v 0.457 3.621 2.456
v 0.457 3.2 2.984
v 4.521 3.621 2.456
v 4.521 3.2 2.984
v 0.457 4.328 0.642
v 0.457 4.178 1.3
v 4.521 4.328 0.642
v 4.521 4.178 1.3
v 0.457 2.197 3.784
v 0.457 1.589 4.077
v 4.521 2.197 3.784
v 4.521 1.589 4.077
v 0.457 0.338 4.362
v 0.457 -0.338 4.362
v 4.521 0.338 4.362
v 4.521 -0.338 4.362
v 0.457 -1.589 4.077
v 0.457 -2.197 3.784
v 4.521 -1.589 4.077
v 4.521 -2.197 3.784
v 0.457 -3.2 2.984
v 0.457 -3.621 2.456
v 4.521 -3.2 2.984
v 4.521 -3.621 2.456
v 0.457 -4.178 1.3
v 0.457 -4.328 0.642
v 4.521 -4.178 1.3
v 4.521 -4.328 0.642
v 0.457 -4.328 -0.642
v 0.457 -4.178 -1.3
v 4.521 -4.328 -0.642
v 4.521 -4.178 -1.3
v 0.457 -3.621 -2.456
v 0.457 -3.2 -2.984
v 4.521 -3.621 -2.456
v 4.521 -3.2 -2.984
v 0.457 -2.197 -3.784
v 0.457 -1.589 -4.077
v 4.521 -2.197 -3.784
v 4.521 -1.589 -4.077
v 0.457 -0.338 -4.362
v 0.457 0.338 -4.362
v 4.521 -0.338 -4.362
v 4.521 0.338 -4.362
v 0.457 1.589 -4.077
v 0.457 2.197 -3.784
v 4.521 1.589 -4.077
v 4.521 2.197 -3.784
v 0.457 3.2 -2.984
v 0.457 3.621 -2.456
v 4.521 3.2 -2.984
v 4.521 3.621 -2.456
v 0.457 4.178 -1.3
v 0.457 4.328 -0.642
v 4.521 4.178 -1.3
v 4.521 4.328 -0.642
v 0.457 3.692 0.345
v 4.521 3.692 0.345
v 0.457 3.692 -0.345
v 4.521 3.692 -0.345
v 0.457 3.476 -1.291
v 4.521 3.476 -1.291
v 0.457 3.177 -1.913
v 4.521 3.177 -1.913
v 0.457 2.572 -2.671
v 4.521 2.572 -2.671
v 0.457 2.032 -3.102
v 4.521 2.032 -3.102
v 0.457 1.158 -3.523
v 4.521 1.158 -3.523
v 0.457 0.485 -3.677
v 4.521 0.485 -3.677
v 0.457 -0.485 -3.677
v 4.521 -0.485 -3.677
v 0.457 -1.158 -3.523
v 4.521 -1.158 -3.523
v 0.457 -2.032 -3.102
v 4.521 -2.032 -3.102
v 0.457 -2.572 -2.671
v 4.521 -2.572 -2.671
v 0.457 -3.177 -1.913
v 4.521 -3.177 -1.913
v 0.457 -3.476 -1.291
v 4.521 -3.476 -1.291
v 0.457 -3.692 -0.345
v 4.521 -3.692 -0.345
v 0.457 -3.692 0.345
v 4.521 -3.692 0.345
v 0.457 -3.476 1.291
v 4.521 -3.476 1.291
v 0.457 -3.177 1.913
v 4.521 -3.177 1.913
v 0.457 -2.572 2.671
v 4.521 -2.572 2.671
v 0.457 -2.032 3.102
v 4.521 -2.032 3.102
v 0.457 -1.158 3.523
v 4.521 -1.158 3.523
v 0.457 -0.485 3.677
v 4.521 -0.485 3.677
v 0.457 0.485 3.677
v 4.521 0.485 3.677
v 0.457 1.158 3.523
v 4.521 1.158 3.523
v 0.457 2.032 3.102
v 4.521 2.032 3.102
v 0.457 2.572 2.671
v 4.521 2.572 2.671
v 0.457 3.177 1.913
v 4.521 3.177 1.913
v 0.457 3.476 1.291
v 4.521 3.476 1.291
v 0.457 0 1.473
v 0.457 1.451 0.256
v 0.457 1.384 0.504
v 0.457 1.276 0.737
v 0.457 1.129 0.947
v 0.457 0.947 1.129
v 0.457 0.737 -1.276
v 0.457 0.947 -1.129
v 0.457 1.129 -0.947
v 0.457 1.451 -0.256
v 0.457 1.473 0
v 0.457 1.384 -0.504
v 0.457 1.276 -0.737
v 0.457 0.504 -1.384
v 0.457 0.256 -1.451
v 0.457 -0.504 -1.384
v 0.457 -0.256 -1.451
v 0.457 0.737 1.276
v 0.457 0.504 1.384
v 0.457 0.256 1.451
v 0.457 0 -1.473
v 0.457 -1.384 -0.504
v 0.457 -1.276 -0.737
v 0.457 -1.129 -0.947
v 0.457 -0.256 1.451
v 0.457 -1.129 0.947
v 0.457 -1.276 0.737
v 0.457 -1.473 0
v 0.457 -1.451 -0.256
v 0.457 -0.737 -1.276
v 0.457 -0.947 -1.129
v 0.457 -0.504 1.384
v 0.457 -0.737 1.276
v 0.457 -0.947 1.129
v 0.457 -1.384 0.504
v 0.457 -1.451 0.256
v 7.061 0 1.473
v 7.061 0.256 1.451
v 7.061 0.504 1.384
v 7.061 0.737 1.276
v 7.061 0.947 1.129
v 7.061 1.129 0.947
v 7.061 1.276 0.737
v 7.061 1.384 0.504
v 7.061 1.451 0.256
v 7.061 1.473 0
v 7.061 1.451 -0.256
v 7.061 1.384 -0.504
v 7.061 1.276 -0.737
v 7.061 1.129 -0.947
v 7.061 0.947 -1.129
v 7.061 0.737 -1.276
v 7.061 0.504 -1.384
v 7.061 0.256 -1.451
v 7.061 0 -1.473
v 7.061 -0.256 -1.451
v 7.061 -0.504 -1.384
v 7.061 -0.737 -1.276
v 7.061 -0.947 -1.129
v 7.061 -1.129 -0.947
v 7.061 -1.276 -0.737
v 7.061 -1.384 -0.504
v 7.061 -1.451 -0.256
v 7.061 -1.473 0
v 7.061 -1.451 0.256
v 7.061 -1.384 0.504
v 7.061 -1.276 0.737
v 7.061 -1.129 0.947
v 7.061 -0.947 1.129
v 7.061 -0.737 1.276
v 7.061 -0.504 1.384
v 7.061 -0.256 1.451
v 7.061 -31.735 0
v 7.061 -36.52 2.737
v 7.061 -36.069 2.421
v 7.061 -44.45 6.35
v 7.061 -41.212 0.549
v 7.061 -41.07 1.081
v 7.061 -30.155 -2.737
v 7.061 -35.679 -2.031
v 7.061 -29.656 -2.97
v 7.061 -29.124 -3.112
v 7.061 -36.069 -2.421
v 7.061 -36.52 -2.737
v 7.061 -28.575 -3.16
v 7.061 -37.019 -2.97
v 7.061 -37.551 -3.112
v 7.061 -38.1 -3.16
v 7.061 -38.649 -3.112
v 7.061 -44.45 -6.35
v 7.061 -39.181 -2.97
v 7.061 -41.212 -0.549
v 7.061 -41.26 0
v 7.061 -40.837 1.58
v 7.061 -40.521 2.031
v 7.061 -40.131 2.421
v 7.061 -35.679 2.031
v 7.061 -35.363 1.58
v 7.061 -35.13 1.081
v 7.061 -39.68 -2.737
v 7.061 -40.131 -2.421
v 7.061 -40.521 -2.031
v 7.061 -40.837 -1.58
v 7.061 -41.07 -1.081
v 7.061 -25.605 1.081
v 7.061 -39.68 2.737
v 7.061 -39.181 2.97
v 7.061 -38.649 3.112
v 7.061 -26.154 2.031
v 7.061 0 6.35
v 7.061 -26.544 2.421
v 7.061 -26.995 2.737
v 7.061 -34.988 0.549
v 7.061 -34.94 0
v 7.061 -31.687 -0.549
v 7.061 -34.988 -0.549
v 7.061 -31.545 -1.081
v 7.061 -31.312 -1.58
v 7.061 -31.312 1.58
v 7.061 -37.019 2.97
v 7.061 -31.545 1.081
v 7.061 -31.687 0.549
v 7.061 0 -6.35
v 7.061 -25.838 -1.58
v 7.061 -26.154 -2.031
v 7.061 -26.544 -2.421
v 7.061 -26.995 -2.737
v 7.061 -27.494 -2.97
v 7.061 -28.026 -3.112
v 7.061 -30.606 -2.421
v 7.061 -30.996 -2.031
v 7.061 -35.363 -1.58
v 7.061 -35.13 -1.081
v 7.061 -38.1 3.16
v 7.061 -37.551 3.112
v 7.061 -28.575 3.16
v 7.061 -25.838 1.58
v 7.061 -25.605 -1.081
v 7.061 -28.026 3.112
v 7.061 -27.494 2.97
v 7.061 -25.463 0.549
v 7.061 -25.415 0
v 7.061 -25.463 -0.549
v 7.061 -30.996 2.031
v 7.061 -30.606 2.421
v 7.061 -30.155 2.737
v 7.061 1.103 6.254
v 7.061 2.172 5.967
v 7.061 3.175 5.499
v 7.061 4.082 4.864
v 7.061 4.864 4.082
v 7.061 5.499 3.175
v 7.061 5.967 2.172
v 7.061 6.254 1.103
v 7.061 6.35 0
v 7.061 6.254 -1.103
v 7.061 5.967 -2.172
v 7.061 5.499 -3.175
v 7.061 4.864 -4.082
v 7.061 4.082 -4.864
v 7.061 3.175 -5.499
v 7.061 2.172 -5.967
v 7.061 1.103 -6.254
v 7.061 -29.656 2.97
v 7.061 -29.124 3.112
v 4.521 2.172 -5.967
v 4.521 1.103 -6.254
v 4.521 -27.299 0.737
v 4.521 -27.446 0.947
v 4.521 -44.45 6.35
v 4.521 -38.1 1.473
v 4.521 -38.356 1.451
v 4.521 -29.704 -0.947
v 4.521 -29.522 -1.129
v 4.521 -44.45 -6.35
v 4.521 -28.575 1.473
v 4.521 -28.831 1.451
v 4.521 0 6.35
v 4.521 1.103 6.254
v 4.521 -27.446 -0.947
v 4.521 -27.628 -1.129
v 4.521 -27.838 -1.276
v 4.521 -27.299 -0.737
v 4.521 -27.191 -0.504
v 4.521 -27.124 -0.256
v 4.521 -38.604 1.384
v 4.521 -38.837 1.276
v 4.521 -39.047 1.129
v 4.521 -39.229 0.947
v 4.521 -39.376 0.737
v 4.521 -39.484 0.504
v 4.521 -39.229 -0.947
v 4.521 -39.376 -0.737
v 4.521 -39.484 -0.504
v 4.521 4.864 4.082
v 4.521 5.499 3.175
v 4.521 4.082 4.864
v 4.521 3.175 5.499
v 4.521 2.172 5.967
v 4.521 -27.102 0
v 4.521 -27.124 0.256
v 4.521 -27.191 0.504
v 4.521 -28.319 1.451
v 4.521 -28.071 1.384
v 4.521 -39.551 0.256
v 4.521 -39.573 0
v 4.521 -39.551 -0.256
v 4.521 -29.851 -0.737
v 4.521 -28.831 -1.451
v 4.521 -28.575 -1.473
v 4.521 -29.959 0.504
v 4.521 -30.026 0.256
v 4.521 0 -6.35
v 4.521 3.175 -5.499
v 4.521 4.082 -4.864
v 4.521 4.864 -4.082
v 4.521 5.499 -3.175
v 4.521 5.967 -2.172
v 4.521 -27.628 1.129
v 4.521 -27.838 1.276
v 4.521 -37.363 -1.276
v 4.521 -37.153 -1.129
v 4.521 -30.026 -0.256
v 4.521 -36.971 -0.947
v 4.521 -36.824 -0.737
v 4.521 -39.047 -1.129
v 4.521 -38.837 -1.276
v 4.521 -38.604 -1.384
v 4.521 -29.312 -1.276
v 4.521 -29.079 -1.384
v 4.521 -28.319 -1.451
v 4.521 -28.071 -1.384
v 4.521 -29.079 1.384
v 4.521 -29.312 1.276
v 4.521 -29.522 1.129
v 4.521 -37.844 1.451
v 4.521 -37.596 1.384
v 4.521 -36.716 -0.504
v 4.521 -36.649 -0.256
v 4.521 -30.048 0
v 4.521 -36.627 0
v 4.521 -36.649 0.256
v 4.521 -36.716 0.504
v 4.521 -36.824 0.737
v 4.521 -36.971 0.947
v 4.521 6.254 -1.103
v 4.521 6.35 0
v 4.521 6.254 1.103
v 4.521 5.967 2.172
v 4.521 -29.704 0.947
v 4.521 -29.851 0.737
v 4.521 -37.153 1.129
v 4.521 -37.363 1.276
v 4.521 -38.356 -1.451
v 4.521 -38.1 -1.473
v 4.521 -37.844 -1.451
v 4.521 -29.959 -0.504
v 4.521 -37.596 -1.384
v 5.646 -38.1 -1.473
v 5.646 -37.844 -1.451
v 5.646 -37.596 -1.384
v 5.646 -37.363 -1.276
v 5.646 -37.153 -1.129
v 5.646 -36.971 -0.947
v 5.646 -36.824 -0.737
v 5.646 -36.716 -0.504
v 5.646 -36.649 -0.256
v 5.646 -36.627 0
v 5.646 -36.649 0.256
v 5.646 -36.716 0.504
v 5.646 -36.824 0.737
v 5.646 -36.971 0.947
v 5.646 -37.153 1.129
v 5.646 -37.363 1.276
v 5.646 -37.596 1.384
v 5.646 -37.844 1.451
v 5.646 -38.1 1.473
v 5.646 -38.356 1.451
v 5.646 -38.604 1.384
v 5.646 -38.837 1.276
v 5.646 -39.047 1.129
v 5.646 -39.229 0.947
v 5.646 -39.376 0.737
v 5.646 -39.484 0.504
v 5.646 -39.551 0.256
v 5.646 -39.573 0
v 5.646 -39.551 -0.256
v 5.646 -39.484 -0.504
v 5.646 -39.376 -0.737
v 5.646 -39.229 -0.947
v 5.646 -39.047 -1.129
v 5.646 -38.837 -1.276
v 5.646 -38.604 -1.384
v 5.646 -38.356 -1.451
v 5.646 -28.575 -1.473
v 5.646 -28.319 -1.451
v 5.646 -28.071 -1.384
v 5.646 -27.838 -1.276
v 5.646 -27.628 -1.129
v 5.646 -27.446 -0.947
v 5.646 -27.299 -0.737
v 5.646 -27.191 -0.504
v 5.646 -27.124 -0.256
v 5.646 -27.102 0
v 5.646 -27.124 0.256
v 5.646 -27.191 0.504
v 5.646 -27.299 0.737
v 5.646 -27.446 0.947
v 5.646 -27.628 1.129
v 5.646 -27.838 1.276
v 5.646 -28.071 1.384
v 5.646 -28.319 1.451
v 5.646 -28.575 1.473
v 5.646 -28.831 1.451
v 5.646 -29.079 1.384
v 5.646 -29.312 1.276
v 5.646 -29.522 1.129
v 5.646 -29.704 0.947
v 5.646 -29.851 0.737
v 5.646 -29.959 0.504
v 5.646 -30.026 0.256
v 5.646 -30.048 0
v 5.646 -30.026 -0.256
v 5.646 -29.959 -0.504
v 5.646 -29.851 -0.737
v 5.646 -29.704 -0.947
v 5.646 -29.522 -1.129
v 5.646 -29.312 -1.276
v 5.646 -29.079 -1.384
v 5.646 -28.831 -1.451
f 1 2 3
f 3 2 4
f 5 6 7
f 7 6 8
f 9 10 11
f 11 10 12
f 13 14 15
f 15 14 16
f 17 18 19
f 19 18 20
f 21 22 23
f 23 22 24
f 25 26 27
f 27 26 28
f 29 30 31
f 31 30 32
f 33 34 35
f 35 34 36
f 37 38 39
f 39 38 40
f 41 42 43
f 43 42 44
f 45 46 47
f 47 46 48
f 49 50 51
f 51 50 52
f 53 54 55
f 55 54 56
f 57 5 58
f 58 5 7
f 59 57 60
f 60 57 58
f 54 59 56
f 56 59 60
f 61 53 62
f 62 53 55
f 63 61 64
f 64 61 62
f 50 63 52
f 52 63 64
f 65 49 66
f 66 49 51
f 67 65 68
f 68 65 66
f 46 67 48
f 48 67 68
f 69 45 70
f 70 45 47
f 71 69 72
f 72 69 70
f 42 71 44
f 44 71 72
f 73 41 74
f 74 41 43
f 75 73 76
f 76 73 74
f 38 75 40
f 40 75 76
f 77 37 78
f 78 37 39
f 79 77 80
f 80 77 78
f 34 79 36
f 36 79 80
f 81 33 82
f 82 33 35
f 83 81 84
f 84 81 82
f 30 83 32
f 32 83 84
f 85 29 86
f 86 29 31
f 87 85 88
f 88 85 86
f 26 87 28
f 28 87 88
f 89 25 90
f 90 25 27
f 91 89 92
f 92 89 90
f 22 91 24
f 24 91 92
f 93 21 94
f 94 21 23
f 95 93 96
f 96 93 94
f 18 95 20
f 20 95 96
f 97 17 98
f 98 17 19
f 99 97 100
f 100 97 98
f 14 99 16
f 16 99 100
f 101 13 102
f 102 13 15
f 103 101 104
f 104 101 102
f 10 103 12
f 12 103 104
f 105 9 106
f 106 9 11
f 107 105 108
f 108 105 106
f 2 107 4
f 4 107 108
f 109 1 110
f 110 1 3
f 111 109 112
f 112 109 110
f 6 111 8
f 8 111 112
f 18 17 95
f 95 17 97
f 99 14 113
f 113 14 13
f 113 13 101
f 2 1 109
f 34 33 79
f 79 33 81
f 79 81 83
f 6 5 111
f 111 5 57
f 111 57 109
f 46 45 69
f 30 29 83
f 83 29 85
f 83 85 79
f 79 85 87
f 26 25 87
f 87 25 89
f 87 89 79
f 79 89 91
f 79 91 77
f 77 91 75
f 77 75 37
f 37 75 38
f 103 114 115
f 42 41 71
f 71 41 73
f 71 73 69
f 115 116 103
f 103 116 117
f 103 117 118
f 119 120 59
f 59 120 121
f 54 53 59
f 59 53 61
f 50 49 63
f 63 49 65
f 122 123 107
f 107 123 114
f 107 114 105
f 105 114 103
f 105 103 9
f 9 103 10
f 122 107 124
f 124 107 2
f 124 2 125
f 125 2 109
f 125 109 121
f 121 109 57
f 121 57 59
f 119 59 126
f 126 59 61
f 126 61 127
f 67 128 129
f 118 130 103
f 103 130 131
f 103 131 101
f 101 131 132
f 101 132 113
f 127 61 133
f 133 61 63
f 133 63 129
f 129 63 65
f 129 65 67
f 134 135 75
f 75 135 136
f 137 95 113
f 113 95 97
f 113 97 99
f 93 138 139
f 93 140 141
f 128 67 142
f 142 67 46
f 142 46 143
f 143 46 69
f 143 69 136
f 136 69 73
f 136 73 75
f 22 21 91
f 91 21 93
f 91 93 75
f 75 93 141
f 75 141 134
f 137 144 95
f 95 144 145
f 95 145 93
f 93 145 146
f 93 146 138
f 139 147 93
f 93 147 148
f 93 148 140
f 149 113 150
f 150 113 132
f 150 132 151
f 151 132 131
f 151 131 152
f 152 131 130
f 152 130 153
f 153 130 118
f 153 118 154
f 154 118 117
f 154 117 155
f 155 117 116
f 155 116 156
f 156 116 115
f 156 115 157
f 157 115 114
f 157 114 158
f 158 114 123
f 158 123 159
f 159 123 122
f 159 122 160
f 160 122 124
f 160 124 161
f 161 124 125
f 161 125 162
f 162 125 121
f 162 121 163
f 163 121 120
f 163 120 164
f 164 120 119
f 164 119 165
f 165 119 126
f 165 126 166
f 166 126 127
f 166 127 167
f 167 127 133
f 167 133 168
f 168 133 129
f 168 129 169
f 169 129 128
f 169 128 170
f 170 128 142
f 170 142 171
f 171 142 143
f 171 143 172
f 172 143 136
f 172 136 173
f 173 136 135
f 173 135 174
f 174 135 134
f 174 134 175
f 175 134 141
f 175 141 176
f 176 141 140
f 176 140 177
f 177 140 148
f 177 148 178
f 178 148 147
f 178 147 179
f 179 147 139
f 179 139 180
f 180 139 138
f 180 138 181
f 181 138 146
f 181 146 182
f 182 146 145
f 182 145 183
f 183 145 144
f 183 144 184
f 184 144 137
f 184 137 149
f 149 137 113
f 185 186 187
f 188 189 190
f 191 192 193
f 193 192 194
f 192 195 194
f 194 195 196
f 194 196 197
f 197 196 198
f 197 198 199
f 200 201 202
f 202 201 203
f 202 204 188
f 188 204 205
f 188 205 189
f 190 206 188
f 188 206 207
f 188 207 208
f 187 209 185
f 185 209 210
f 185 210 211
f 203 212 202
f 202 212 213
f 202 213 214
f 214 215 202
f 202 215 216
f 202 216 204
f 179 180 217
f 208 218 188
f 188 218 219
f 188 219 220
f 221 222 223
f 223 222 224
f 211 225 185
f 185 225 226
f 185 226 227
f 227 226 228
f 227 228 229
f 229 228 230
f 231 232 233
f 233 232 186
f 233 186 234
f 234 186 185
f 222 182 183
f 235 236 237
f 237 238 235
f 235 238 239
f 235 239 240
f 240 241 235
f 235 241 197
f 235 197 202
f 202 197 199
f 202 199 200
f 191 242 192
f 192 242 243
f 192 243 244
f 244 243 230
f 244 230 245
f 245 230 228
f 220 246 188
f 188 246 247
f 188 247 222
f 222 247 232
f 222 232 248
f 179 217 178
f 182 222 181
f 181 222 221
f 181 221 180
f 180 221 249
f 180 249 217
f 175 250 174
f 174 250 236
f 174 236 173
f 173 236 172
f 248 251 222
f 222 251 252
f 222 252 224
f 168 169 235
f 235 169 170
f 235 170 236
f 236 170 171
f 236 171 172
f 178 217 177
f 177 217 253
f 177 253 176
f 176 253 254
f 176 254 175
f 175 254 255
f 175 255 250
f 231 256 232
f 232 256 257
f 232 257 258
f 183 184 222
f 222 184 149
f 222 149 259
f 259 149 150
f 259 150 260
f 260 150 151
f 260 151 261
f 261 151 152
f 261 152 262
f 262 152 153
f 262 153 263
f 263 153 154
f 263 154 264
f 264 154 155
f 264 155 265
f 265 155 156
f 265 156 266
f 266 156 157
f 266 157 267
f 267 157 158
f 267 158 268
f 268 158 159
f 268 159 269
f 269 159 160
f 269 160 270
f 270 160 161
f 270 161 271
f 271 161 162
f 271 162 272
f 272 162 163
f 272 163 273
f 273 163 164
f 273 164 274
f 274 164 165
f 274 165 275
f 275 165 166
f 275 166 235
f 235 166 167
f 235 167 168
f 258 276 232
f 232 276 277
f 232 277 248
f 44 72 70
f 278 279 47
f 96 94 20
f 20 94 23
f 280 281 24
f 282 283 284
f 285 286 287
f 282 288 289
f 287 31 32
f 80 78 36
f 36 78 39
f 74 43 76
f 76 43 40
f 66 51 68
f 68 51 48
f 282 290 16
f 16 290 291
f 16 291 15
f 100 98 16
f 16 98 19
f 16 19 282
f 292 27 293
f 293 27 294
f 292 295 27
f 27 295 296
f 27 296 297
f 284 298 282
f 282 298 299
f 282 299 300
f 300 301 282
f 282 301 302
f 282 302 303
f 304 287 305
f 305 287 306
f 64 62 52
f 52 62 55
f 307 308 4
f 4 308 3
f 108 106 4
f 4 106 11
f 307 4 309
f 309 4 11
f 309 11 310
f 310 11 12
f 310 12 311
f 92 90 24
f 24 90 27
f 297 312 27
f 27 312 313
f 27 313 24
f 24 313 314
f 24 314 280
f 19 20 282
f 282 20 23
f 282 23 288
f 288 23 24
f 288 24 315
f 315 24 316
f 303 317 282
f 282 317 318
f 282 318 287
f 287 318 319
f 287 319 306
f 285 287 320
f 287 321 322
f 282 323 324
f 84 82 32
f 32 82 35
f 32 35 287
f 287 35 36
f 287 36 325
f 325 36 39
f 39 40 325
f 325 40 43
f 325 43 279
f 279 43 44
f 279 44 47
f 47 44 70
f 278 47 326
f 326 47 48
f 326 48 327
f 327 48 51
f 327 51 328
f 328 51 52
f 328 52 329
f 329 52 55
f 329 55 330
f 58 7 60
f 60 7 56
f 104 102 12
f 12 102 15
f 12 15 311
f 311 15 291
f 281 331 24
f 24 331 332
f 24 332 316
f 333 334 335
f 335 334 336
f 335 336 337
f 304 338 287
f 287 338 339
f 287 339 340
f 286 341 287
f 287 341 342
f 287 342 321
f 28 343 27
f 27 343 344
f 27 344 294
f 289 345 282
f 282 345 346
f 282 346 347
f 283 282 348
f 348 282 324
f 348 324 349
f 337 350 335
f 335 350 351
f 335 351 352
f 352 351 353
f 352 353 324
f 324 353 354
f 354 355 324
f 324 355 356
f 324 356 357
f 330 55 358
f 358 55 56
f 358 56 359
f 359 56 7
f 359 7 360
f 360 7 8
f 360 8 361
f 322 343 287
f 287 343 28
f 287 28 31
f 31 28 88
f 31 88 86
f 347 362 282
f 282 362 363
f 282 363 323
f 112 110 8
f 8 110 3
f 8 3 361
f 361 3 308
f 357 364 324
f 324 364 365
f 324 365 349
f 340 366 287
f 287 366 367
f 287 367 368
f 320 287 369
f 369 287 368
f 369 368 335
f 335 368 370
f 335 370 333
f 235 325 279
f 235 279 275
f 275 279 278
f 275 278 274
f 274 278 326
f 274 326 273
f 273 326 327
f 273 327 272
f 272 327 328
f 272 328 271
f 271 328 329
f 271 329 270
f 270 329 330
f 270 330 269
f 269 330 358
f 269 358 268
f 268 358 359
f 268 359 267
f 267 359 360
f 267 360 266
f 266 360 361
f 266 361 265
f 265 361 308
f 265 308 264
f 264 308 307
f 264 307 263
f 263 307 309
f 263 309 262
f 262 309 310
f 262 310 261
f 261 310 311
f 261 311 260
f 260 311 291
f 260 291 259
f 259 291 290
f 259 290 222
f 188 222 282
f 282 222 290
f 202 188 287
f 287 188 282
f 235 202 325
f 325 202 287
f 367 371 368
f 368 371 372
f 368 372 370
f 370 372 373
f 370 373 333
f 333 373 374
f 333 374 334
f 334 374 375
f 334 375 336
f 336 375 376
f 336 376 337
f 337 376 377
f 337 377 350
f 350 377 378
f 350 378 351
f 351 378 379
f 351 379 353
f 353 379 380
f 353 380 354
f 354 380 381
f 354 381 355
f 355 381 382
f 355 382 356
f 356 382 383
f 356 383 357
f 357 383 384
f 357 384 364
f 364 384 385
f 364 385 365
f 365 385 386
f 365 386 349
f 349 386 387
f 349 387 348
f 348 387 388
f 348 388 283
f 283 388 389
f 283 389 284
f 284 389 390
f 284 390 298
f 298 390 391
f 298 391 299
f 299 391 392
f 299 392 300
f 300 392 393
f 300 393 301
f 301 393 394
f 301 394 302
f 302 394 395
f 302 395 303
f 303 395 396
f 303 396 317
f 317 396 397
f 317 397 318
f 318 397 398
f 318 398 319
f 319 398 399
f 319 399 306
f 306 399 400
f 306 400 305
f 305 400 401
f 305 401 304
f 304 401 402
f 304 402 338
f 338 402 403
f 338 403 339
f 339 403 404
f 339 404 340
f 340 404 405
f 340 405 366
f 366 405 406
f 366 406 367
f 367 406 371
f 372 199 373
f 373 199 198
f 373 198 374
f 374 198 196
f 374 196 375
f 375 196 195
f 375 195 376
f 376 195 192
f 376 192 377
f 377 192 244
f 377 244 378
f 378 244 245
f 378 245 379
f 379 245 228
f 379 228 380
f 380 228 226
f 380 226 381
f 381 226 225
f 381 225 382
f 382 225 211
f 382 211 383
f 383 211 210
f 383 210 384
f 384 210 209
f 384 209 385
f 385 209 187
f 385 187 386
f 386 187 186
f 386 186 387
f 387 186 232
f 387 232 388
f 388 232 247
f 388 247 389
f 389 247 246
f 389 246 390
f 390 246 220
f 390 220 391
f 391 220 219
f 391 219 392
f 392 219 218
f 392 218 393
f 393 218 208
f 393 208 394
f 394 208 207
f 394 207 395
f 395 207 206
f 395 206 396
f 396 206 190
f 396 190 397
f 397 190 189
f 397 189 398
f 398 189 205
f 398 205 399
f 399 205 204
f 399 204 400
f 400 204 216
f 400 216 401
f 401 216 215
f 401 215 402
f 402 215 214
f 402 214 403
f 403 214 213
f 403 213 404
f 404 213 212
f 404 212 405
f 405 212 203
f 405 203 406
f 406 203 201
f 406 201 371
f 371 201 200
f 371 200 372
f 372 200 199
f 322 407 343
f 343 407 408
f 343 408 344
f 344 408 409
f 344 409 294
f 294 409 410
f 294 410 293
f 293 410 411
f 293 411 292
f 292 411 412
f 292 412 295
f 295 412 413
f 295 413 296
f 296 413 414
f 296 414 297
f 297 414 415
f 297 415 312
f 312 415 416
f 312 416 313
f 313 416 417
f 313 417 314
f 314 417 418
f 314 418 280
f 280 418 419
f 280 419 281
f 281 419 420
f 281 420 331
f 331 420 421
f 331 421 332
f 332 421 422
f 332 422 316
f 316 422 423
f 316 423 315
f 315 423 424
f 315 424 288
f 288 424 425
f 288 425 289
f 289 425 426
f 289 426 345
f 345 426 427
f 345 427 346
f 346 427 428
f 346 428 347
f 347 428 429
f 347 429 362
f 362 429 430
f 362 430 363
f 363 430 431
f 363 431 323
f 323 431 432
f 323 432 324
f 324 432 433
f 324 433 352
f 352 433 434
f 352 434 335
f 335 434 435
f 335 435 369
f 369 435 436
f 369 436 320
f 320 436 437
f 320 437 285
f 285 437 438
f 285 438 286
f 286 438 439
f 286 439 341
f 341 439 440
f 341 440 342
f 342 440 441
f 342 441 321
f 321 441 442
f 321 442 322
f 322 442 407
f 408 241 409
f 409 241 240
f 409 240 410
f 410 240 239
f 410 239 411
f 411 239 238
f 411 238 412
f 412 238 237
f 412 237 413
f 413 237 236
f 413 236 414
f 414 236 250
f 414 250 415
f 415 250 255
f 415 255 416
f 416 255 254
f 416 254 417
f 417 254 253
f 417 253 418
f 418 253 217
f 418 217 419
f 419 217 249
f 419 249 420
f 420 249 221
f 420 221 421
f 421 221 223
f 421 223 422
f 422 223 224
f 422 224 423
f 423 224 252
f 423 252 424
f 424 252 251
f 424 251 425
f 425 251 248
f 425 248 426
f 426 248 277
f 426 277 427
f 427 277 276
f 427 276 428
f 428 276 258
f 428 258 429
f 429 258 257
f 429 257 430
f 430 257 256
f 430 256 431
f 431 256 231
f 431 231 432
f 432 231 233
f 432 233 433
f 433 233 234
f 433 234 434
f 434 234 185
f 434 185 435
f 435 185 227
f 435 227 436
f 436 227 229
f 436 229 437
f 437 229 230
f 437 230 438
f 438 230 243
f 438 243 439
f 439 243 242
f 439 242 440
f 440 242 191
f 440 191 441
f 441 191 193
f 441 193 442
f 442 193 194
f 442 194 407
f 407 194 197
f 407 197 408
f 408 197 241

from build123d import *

# Parameters (mm, degrees)
SKETCH4_R                                         = 4.5339
SKETCH4_R_2                                       = 4.37515
CUT_EXTRUDE2_DEPTH                                = 4.064
CUT_EXTRUDE1_DEPTH                                = 4.064
CIRPATTERN1_COUNT                                 = 14
SKETCH6_R                                         = 1.5875
CUT_EXTRUDE3_DEPTH                                = 12.02520933
CUT_EXTRUDE4_DEPTH                                = 1.016
SKETCH11_R                                        = 6.731
CUT_EXTRUDE6_DEPTH                                = 2.54
SKETCH13_R                                        = 9.525
CUT_EXTRUDE7_DEPTH                                = 12.262802402
BOSS_EXTRUDE2_START                               = -4.064
SKETCH17_R                                        = 1.5875
SKETCH17_R_2                                      = 1.4732
BOSS_EXTRUDE2_DEPTH                               = 4.064
BOSS_EXTRUDE1_START                               = 2.54
SKETCH12_R                                        = 1.4732
BOSS_EXTRUDE1_DEPTH                               = 2.54
CSK_FOR_4_FLAT_HEAD_MACHINE_SCREW_100_D           = 2.9464
CSK_FOR_4_FLAT_HEAD_MACHINE_SCREW_100_CSINK_D     = 6.320409
CSK_FOR_4_FLAT_HEAD_MACHINE_SCREW_100_CSINK_ANGLE = 100


with BuildPart() as part:
    # Sketch1 → Revolve1 (revolve)
    with BuildSketch(Plane.XY, mode=Mode.PRIVATE) as revolve1_sk:
        with BuildLine():
            Line((-5.5626, 1.5875), (5.5626, 1.5875))
            Line((5.5626, 1.5875), (5.5626, 6.731))
            Line((5.5626, 6.731), (5.0419, 6.731))
            ThreePointArc((5.0419, 6.731), (4.654552953, 5.958878742), (4.5212, 5.1054))
            Line((4.5212, 5.1054), (4.5212, 4.5339))
            Line((4.5212, 4.5339), (0.4572, 4.5339))
            Line((0.4572, 4.5339), (0.4572, 5.6769))
            Line((0.4572, 5.6769), (-0.5969, 6.731))
            Line((-0.5969, 6.731), (-5.5626, 6.731))
            Line((-5.5626, 6.731), (-5.5626, 1.5875))
        make_face()
    revolve(revolve1_sk.sketch.rotate(Axis((-5.5626, 0, 0), (1, 0, 0)), 90), axis=Axis((-5.5626, 0, 0), (1, 0, 0)))

    # Sketch4 → Cut-Extrude2 (cut)
    with BuildSketch(Plane(origin=(0.4572, 0, 0), x_dir=(0, 0, -1), z_dir=(1, 0, 0))):
        Circle(SKETCH4_R)
        Circle(SKETCH4_R_2, mode=Mode.SUBTRACT)
    extrude(amount=CUT_EXTRUDE2_DEPTH, mode=Mode.SUBTRACT)

    # Sketch3 → Cut-Extrude1 (cut)
    with BuildSketch(Plane(origin=(0.4572, 0, 0), x_dir=(0, 0, -1), z_dir=(1, 0, 0))):
        with BuildLine():
            Line((-0.641613493, 4.327848154), (-0.345249615, 3.692293767))
            Line((-0.345249615, 3.692293767), (0.345249615, 3.692293767))
            Line((0.345249615, 3.692293767), (0.641613493, 4.327848154))
            ThreePointArc((0.641613493, 4.327848154), (0, 4.37515), (-0.641613493, 4.327848154))
        make_face()
    cut_extrude1 = extrude(amount=CUT_EXTRUDE1_DEPTH, mode=Mode.SUBTRACT)

    # CirPattern1: Cut-Extrude1 ×14 about axis
    cirpattern1_axis = Axis((0, 0, 0), (1, 0, 0))
    for i in range(1, CIRPATTERN1_COUNT):
        add(cut_extrude1.rotate(cirpattern1_axis, i * 360 / CIRPATTERN1_COUNT), mode=Mode.SUBTRACT)

    # Sketch6 → Cut-Extrude3 (cut, through all)
    with BuildSketch(Plane(origin=(0, 0, 0), x_dir=(1, 0, 0), z_dir=(0, 1, 0))):
        with Locations(Location((-2.5527, 0, 0), (0, 0, 90))):
            Circle(SKETCH6_R)
    extrude(amount=CUT_EXTRUDE3_DEPTH, mode=Mode.SUBTRACT)

    # Sketch11 → Cut-Extrude6 (cut)
    with BuildSketch(Plane.ZY.offset(-4.5212)):
        Circle(SKETCH11_R)
    extrude(amount=-CUT_EXTRUDE6_DEPTH, mode=Mode.SUBTRACT)


with BuildPart() as body_2:
    # Sketch7 → Revolve2 (revolve)
    with BuildSketch(Plane.XY, mode=Mode.PRIVATE) as revolve2_sk:
        Polygon((-3.7211, 6.731), (-2.5527, 6.731), (-2.5527, 1.9685), (-3.7211, 1.9685), (-3.9751, 2.2225), (-3.9751, 6.477), align=None)
    revolve(revolve2_sk.sketch.rotate(Axis((-2.5527, 1.9685, 0), (0, 1, 0)), 270), axis=Axis((-2.5527, 1.9685, 0), (0, 1, 0)))

    # Sketch8 → Cut-Extrude4 (cut)
    with BuildSketch(Plane(origin=(0, 6.731, 0), x_dir=(1, 0, 0), z_dir=(0, 1, 0))):
        Polygon((-2.5527, 0.821223023), (-3.2639, 0.410611511), (-3.2639, -0.410611511), (-2.5527, -0.821223023), (-1.8415, -0.410611511), (-1.8415, 0.410611511), align=None)
    extrude(amount=-CUT_EXTRUDE4_DEPTH, mode=Mode.SUBTRACT)


with BuildPart() as cut_extrude7_tool:
    # Sketch13 → Cut-Extrude7 (new, through all)
    with BuildSketch(Plane(origin=(0.4572, 0, 0), x_dir=(0, 0, -1), z_dir=(1, 0, 0))):
        Circle(SKETCH13_R)
    extrude(amount=-CUT_EXTRUDE7_DEPTH)


with BuildPart() as part_1:
    add(part.part)

    # Cut-Extrude7: cut by cut_extrude7_tool
    add(cut_extrude7_tool.part, mode=Mode.SUBTRACT)

    # Sketch17 → Boss-Extrude2 (add)
    with BuildSketch(Plane.ZY.offset(-0.4572).offset(BOSS_EXTRUDE2_START)):
        Circle(SKETCH17_R)
        Circle(SKETCH17_R_2, mode=Mode.SUBTRACT)
    extrude(amount=BOSS_EXTRUDE2_DEPTH)

    # Sketch12 → Boss-Extrude1 (add)
    with BuildSketch(Plane(origin=(4.5212, 0, 0), x_dir=(0, 0, -1), z_dir=(1, 0, 0)).offset(BOSS_EXTRUDE1_START)):
        with BuildLine():
            Line((6.35, 0), (6.35, -44.45))
            Line((6.35, -44.45), (-6.35, -44.45))
            Line((-6.35, -44.45), (-6.35, 0))
            ThreePointArc((-6.35, 0), (0, 6.35), (6.35, 0))
        make_face()
        with Locations(Location((0, 0, 0), (0, 0, 180))):
            Circle(SKETCH12_R, mode=Mode.SUBTRACT)
    extrude(amount=-BOSS_EXTRUDE1_DEPTH)

    # CSK for #4 Flat Head Machine Screw (100)1 (through all)
    with Locations(Plane(origin=(7.0612, 0, 0), x_dir=(0, 0, -1), z_dir=(1, 0, 0))):
        with Locations((0, -28.575), (0, -38.1)):
            CounterSinkHole(CSK_FOR_4_FLAT_HEAD_MACHINE_SCREW_100_D / 2, CSK_FOR_4_FLAT_HEAD_MACHINE_SCREW_100_CSINK_D / 2, counter_sink_angle=CSK_FOR_4_FLAT_HEAD_MACHINE_SCREW_100_CSINK_ANGLE)


with BuildPart() as body_2_1:
    add(body_2.part)

    # Cut-Extrude7: cut by cut_extrude7_tool
    add(cut_extrude7_tool.part, mode=Mode.SUBTRACT)


solid = part_1.part
